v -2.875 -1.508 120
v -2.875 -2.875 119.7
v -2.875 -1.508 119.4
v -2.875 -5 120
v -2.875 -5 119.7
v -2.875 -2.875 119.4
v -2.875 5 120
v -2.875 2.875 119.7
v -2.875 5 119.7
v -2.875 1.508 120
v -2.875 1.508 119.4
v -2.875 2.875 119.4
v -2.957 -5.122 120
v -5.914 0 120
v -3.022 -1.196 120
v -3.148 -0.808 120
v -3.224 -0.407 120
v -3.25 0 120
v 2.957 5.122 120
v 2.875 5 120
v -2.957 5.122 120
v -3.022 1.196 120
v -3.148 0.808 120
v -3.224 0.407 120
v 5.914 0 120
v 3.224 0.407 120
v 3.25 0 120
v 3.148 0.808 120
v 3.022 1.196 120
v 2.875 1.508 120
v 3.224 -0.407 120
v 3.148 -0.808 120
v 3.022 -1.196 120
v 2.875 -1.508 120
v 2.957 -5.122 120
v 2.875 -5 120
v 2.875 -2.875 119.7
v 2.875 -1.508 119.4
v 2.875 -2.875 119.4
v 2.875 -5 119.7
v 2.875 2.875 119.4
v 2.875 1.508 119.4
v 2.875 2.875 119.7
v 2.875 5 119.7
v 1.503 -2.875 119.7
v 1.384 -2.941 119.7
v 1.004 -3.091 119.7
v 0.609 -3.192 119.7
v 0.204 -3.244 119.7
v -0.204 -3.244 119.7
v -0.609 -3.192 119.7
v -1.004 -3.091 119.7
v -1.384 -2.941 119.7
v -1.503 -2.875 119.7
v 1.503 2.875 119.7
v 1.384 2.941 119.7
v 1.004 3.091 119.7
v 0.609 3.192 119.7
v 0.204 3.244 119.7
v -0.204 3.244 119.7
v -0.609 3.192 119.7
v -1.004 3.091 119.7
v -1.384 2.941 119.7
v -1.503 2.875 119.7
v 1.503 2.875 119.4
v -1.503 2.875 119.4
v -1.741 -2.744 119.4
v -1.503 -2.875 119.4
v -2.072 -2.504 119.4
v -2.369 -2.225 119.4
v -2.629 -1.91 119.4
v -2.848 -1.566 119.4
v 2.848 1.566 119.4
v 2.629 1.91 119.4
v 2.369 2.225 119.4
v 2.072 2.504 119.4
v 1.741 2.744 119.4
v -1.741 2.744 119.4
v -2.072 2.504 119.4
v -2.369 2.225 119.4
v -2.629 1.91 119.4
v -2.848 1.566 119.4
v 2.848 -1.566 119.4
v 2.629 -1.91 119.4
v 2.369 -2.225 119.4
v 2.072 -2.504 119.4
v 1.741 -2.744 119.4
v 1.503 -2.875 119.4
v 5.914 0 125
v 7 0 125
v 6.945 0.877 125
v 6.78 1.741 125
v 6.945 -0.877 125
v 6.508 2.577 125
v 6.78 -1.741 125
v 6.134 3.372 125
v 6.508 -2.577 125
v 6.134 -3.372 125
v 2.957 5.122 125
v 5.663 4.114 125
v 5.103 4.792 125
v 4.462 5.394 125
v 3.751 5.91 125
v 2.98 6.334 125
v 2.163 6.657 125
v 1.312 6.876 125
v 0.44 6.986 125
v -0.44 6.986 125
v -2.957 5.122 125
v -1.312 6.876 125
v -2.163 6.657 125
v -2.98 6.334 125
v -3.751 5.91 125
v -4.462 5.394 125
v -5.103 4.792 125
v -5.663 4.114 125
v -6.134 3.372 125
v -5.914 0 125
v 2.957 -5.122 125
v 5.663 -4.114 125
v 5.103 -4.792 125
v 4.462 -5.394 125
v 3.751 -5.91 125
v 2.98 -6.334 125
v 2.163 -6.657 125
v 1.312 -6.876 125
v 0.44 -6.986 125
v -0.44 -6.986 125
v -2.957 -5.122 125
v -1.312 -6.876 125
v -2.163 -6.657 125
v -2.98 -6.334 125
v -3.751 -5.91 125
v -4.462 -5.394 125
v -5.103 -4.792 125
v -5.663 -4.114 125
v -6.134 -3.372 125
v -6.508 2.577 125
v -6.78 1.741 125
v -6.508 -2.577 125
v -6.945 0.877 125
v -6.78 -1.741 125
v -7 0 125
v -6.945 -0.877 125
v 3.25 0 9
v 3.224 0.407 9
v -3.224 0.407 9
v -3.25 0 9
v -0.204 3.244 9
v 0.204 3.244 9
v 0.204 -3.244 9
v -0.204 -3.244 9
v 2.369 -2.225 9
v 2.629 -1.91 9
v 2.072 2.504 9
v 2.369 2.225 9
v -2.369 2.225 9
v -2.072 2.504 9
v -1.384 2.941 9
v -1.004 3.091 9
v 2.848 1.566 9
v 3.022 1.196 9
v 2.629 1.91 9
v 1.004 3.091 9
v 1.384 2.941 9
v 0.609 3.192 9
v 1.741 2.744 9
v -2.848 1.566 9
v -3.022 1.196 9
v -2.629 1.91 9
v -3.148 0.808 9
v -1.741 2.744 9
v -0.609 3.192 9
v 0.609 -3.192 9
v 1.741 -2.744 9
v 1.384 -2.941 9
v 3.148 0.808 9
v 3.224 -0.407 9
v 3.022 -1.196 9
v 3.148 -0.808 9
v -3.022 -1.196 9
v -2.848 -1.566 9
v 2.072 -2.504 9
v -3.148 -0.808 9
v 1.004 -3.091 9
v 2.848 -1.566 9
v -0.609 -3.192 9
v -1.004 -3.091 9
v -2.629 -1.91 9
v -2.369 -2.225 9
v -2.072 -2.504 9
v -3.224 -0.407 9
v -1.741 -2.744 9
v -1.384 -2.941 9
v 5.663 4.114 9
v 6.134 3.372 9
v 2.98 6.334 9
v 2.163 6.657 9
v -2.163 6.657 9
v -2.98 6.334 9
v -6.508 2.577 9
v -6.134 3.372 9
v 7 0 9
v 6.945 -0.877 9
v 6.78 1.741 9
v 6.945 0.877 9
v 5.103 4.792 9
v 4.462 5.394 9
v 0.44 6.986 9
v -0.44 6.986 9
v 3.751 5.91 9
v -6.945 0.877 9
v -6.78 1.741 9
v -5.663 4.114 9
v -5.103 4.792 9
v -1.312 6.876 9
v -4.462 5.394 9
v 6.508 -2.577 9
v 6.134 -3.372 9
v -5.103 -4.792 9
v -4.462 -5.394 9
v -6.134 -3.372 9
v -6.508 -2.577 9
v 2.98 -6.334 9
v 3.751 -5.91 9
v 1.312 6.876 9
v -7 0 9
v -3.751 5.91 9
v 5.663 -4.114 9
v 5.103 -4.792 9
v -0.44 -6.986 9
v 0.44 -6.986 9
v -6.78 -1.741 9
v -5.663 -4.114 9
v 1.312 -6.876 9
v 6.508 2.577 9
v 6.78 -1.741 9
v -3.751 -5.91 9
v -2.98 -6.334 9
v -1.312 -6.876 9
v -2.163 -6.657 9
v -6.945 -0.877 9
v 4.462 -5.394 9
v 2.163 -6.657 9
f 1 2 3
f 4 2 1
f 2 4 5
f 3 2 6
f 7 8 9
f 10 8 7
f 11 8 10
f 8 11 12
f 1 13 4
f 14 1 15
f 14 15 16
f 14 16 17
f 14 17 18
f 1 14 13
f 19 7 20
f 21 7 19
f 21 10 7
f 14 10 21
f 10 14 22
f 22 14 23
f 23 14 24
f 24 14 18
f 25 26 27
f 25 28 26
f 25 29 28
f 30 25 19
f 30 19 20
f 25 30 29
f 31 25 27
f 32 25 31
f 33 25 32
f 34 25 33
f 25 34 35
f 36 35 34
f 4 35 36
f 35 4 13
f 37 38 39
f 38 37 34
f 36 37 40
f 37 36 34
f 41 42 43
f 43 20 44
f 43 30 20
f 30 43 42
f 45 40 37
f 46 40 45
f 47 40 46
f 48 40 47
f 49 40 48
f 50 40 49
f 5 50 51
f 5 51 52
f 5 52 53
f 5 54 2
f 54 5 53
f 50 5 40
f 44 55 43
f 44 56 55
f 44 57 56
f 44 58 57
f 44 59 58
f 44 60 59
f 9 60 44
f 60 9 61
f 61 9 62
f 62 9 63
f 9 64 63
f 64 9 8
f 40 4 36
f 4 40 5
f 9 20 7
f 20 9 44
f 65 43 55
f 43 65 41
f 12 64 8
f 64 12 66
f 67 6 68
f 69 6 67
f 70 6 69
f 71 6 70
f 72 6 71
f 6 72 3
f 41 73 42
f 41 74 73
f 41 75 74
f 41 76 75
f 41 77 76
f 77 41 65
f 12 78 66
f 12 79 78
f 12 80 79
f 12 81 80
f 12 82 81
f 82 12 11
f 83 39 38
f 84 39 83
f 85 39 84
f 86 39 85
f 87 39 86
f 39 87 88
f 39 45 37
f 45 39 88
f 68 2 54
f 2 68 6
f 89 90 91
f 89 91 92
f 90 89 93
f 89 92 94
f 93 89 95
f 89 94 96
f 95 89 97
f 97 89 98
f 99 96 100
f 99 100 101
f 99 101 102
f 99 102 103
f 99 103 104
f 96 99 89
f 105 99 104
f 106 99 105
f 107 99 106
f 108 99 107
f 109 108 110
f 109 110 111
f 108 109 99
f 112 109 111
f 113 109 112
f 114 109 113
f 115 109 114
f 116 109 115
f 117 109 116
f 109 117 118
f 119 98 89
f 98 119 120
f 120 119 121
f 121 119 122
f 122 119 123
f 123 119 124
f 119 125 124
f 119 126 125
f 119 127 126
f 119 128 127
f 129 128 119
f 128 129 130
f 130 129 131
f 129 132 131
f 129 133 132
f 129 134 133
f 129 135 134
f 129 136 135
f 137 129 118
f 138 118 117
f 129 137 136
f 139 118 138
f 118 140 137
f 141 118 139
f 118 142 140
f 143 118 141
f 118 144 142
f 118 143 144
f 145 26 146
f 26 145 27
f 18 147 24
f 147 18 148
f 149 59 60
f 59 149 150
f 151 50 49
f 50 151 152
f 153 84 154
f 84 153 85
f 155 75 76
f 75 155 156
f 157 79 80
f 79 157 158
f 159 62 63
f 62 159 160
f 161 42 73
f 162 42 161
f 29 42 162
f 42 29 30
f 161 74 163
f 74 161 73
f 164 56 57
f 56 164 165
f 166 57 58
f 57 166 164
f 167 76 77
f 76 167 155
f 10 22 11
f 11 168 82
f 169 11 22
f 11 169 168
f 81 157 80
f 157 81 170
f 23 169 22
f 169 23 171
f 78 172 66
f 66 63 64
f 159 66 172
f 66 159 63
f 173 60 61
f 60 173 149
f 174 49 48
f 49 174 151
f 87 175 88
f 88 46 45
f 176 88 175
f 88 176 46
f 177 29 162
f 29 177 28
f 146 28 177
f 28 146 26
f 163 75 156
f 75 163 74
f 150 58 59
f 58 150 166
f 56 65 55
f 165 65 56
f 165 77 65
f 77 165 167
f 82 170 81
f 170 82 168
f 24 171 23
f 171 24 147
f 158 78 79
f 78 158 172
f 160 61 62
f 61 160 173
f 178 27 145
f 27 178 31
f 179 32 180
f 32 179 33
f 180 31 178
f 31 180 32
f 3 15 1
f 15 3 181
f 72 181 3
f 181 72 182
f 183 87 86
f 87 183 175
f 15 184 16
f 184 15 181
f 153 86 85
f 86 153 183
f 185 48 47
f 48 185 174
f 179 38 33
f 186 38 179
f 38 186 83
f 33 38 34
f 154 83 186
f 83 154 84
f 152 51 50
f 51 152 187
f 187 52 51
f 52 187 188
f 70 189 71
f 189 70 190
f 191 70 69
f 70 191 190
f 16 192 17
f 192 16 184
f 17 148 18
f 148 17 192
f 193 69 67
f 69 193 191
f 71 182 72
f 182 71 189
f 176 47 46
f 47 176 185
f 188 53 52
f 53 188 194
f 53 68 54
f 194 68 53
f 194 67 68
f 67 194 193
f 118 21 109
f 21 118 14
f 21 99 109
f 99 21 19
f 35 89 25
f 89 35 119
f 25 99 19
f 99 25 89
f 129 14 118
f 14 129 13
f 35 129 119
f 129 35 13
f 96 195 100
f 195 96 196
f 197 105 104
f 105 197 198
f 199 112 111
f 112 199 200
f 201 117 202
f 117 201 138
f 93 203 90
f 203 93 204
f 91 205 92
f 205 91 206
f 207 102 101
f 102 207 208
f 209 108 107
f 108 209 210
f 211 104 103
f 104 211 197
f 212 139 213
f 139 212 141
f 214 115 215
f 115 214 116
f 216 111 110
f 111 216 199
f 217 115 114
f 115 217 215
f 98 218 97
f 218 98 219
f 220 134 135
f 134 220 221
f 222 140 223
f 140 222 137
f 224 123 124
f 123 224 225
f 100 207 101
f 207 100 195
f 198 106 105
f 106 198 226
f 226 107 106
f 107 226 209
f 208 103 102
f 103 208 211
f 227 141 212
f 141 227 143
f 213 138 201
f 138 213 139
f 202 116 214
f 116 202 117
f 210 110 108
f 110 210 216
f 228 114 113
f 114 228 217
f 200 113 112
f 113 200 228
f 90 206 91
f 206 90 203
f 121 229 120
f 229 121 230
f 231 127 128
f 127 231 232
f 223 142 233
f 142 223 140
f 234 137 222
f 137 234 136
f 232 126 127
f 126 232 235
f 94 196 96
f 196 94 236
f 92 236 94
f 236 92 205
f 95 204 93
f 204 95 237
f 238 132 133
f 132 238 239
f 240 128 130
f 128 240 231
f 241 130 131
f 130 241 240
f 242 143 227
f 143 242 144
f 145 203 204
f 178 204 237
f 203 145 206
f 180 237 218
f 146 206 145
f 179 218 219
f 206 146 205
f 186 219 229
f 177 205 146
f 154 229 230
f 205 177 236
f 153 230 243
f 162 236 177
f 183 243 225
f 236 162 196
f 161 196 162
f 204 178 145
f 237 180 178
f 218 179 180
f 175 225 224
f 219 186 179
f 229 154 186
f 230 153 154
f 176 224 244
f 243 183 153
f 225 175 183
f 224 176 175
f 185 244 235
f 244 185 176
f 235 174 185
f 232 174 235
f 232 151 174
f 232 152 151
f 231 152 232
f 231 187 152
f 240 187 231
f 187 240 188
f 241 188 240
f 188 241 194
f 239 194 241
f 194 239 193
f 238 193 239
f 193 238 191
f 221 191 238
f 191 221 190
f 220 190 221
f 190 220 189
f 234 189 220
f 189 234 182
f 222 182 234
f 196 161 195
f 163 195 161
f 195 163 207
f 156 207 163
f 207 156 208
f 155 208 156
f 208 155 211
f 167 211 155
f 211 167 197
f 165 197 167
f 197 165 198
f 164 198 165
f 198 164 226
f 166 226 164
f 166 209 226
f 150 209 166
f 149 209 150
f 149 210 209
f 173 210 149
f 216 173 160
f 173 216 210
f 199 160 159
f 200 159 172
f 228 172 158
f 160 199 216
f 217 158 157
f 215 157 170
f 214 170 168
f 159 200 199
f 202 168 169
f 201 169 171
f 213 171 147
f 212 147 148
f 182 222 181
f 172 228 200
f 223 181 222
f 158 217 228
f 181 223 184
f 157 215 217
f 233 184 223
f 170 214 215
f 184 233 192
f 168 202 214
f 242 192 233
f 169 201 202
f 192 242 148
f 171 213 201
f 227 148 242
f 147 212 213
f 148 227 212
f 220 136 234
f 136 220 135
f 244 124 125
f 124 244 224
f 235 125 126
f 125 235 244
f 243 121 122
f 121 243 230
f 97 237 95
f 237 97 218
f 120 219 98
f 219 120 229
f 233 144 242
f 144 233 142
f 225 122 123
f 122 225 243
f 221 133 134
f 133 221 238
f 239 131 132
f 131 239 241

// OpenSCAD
$fn = 50;


difference() {
	union() {
		translate(v = [0, 0, 9.0000000000]) {
			cylinder(h = 116, r = 7.0000000000);
		}
	}
	union() {
		translate(v = [0, 0, 125]) {
			rotate(a = [0, 0, 0]) {
				difference() {
					union() {
						#translate(v = [-2.8750000000, -5.0000000000, -5.3000000000]) {
							cube(size = [5.7500000000, 10, 0.3000000000]);
						}
						#translate(v = [-2.8750000000, -2.8750000000, -5.6000000000]) {
							cube(size = [5.7500000000, 5.7500000000, 0.3000000000]);
						}
						#translate(v = [-2.8750000000, -5.0000000000, 0]) {
							cube(size = [5.7500000000, 10, 0.3000000000]);
						}
						#translate(v = [-2.8750000000, -2.8750000000, 0.3000000000]) {
							cube(size = [5.7500000000, 5.7500000000, 0.3000000000]);
						}
						#translate(v = [0, 0, -100.0000000000]) {
							cylinder(h = 200, r = 3.2500000000);
						}
						translate(v = [0, 0, -5]) {
							#linear_extrude(height = 5) {
								polygon(points = [[5.9142500000, 0.0000000000], [2.9571250000, 5.1218907443], [-2.9571250000, 5.1218907443], [-5.9142500000, 0.0000000000], [-2.9571250000, -5.1218907443], [2.9571250000, -5.1218907443]]);
							}
						}
						#translate(v = [-2.8750000000, -5.0000000000, -5.3000000000]) {
							cube(size = [5.7500000000, 10, 0.3000000000]);
						}
						#translate(v = [-2.8750000000, -2.8750000000, -5.6000000000]) {
							cube(size = [5.7500000000, 5.7500000000, 0.3000000000]);
						}
						#translate(v = [-2.8750000000, -5.0000000000, 0]) {
							cube(size = [5.7500000000, 10, 0.3000000000]);
						}
						#translate(v = [-2.8750000000, -2.8750000000, 0.3000000000]) {
							cube(size = [5.7500000000, 5.7500000000, 0.3000000000]);
						}
						#translate(v = [0, 0, -100.0000000000]) {
							cylinder(h = 200, r = 3.2500000000);
						}
						#translate(v = [-2.8750000000, -5.0000000000, -5.3000000000]) {
							cube(size = [5.7500000000, 10, 0.3000000000]);
						}
						#translate(v = [-2.8750000000, -2.8750000000, -5.6000000000]) {
							cube(size = [5.7500000000, 5.7500000000, 0.3000000000]);
						}
						#translate(v = [-2.8750000000, -5.0000000000, 0]) {
							cube(size = [5.7500000000, 10, 0.3000000000]);
						}
						#translate(v = [-2.8750000000, -2.8750000000, 0.3000000000]) {
							cube(size = [5.7500000000, 5.7500000000, 0.3000000000]);
						}
						#translate(v = [0, 0, -100.0000000000]) {
							cylinder(h = 200, r = 3.2500000000);
						}
					}
					union();
				}
			}
		}
		#translate(v = [0, 0, -100.0000000000]) {
			cylinder(h = 200, r = 3.2500000000);
		}
	}
}
